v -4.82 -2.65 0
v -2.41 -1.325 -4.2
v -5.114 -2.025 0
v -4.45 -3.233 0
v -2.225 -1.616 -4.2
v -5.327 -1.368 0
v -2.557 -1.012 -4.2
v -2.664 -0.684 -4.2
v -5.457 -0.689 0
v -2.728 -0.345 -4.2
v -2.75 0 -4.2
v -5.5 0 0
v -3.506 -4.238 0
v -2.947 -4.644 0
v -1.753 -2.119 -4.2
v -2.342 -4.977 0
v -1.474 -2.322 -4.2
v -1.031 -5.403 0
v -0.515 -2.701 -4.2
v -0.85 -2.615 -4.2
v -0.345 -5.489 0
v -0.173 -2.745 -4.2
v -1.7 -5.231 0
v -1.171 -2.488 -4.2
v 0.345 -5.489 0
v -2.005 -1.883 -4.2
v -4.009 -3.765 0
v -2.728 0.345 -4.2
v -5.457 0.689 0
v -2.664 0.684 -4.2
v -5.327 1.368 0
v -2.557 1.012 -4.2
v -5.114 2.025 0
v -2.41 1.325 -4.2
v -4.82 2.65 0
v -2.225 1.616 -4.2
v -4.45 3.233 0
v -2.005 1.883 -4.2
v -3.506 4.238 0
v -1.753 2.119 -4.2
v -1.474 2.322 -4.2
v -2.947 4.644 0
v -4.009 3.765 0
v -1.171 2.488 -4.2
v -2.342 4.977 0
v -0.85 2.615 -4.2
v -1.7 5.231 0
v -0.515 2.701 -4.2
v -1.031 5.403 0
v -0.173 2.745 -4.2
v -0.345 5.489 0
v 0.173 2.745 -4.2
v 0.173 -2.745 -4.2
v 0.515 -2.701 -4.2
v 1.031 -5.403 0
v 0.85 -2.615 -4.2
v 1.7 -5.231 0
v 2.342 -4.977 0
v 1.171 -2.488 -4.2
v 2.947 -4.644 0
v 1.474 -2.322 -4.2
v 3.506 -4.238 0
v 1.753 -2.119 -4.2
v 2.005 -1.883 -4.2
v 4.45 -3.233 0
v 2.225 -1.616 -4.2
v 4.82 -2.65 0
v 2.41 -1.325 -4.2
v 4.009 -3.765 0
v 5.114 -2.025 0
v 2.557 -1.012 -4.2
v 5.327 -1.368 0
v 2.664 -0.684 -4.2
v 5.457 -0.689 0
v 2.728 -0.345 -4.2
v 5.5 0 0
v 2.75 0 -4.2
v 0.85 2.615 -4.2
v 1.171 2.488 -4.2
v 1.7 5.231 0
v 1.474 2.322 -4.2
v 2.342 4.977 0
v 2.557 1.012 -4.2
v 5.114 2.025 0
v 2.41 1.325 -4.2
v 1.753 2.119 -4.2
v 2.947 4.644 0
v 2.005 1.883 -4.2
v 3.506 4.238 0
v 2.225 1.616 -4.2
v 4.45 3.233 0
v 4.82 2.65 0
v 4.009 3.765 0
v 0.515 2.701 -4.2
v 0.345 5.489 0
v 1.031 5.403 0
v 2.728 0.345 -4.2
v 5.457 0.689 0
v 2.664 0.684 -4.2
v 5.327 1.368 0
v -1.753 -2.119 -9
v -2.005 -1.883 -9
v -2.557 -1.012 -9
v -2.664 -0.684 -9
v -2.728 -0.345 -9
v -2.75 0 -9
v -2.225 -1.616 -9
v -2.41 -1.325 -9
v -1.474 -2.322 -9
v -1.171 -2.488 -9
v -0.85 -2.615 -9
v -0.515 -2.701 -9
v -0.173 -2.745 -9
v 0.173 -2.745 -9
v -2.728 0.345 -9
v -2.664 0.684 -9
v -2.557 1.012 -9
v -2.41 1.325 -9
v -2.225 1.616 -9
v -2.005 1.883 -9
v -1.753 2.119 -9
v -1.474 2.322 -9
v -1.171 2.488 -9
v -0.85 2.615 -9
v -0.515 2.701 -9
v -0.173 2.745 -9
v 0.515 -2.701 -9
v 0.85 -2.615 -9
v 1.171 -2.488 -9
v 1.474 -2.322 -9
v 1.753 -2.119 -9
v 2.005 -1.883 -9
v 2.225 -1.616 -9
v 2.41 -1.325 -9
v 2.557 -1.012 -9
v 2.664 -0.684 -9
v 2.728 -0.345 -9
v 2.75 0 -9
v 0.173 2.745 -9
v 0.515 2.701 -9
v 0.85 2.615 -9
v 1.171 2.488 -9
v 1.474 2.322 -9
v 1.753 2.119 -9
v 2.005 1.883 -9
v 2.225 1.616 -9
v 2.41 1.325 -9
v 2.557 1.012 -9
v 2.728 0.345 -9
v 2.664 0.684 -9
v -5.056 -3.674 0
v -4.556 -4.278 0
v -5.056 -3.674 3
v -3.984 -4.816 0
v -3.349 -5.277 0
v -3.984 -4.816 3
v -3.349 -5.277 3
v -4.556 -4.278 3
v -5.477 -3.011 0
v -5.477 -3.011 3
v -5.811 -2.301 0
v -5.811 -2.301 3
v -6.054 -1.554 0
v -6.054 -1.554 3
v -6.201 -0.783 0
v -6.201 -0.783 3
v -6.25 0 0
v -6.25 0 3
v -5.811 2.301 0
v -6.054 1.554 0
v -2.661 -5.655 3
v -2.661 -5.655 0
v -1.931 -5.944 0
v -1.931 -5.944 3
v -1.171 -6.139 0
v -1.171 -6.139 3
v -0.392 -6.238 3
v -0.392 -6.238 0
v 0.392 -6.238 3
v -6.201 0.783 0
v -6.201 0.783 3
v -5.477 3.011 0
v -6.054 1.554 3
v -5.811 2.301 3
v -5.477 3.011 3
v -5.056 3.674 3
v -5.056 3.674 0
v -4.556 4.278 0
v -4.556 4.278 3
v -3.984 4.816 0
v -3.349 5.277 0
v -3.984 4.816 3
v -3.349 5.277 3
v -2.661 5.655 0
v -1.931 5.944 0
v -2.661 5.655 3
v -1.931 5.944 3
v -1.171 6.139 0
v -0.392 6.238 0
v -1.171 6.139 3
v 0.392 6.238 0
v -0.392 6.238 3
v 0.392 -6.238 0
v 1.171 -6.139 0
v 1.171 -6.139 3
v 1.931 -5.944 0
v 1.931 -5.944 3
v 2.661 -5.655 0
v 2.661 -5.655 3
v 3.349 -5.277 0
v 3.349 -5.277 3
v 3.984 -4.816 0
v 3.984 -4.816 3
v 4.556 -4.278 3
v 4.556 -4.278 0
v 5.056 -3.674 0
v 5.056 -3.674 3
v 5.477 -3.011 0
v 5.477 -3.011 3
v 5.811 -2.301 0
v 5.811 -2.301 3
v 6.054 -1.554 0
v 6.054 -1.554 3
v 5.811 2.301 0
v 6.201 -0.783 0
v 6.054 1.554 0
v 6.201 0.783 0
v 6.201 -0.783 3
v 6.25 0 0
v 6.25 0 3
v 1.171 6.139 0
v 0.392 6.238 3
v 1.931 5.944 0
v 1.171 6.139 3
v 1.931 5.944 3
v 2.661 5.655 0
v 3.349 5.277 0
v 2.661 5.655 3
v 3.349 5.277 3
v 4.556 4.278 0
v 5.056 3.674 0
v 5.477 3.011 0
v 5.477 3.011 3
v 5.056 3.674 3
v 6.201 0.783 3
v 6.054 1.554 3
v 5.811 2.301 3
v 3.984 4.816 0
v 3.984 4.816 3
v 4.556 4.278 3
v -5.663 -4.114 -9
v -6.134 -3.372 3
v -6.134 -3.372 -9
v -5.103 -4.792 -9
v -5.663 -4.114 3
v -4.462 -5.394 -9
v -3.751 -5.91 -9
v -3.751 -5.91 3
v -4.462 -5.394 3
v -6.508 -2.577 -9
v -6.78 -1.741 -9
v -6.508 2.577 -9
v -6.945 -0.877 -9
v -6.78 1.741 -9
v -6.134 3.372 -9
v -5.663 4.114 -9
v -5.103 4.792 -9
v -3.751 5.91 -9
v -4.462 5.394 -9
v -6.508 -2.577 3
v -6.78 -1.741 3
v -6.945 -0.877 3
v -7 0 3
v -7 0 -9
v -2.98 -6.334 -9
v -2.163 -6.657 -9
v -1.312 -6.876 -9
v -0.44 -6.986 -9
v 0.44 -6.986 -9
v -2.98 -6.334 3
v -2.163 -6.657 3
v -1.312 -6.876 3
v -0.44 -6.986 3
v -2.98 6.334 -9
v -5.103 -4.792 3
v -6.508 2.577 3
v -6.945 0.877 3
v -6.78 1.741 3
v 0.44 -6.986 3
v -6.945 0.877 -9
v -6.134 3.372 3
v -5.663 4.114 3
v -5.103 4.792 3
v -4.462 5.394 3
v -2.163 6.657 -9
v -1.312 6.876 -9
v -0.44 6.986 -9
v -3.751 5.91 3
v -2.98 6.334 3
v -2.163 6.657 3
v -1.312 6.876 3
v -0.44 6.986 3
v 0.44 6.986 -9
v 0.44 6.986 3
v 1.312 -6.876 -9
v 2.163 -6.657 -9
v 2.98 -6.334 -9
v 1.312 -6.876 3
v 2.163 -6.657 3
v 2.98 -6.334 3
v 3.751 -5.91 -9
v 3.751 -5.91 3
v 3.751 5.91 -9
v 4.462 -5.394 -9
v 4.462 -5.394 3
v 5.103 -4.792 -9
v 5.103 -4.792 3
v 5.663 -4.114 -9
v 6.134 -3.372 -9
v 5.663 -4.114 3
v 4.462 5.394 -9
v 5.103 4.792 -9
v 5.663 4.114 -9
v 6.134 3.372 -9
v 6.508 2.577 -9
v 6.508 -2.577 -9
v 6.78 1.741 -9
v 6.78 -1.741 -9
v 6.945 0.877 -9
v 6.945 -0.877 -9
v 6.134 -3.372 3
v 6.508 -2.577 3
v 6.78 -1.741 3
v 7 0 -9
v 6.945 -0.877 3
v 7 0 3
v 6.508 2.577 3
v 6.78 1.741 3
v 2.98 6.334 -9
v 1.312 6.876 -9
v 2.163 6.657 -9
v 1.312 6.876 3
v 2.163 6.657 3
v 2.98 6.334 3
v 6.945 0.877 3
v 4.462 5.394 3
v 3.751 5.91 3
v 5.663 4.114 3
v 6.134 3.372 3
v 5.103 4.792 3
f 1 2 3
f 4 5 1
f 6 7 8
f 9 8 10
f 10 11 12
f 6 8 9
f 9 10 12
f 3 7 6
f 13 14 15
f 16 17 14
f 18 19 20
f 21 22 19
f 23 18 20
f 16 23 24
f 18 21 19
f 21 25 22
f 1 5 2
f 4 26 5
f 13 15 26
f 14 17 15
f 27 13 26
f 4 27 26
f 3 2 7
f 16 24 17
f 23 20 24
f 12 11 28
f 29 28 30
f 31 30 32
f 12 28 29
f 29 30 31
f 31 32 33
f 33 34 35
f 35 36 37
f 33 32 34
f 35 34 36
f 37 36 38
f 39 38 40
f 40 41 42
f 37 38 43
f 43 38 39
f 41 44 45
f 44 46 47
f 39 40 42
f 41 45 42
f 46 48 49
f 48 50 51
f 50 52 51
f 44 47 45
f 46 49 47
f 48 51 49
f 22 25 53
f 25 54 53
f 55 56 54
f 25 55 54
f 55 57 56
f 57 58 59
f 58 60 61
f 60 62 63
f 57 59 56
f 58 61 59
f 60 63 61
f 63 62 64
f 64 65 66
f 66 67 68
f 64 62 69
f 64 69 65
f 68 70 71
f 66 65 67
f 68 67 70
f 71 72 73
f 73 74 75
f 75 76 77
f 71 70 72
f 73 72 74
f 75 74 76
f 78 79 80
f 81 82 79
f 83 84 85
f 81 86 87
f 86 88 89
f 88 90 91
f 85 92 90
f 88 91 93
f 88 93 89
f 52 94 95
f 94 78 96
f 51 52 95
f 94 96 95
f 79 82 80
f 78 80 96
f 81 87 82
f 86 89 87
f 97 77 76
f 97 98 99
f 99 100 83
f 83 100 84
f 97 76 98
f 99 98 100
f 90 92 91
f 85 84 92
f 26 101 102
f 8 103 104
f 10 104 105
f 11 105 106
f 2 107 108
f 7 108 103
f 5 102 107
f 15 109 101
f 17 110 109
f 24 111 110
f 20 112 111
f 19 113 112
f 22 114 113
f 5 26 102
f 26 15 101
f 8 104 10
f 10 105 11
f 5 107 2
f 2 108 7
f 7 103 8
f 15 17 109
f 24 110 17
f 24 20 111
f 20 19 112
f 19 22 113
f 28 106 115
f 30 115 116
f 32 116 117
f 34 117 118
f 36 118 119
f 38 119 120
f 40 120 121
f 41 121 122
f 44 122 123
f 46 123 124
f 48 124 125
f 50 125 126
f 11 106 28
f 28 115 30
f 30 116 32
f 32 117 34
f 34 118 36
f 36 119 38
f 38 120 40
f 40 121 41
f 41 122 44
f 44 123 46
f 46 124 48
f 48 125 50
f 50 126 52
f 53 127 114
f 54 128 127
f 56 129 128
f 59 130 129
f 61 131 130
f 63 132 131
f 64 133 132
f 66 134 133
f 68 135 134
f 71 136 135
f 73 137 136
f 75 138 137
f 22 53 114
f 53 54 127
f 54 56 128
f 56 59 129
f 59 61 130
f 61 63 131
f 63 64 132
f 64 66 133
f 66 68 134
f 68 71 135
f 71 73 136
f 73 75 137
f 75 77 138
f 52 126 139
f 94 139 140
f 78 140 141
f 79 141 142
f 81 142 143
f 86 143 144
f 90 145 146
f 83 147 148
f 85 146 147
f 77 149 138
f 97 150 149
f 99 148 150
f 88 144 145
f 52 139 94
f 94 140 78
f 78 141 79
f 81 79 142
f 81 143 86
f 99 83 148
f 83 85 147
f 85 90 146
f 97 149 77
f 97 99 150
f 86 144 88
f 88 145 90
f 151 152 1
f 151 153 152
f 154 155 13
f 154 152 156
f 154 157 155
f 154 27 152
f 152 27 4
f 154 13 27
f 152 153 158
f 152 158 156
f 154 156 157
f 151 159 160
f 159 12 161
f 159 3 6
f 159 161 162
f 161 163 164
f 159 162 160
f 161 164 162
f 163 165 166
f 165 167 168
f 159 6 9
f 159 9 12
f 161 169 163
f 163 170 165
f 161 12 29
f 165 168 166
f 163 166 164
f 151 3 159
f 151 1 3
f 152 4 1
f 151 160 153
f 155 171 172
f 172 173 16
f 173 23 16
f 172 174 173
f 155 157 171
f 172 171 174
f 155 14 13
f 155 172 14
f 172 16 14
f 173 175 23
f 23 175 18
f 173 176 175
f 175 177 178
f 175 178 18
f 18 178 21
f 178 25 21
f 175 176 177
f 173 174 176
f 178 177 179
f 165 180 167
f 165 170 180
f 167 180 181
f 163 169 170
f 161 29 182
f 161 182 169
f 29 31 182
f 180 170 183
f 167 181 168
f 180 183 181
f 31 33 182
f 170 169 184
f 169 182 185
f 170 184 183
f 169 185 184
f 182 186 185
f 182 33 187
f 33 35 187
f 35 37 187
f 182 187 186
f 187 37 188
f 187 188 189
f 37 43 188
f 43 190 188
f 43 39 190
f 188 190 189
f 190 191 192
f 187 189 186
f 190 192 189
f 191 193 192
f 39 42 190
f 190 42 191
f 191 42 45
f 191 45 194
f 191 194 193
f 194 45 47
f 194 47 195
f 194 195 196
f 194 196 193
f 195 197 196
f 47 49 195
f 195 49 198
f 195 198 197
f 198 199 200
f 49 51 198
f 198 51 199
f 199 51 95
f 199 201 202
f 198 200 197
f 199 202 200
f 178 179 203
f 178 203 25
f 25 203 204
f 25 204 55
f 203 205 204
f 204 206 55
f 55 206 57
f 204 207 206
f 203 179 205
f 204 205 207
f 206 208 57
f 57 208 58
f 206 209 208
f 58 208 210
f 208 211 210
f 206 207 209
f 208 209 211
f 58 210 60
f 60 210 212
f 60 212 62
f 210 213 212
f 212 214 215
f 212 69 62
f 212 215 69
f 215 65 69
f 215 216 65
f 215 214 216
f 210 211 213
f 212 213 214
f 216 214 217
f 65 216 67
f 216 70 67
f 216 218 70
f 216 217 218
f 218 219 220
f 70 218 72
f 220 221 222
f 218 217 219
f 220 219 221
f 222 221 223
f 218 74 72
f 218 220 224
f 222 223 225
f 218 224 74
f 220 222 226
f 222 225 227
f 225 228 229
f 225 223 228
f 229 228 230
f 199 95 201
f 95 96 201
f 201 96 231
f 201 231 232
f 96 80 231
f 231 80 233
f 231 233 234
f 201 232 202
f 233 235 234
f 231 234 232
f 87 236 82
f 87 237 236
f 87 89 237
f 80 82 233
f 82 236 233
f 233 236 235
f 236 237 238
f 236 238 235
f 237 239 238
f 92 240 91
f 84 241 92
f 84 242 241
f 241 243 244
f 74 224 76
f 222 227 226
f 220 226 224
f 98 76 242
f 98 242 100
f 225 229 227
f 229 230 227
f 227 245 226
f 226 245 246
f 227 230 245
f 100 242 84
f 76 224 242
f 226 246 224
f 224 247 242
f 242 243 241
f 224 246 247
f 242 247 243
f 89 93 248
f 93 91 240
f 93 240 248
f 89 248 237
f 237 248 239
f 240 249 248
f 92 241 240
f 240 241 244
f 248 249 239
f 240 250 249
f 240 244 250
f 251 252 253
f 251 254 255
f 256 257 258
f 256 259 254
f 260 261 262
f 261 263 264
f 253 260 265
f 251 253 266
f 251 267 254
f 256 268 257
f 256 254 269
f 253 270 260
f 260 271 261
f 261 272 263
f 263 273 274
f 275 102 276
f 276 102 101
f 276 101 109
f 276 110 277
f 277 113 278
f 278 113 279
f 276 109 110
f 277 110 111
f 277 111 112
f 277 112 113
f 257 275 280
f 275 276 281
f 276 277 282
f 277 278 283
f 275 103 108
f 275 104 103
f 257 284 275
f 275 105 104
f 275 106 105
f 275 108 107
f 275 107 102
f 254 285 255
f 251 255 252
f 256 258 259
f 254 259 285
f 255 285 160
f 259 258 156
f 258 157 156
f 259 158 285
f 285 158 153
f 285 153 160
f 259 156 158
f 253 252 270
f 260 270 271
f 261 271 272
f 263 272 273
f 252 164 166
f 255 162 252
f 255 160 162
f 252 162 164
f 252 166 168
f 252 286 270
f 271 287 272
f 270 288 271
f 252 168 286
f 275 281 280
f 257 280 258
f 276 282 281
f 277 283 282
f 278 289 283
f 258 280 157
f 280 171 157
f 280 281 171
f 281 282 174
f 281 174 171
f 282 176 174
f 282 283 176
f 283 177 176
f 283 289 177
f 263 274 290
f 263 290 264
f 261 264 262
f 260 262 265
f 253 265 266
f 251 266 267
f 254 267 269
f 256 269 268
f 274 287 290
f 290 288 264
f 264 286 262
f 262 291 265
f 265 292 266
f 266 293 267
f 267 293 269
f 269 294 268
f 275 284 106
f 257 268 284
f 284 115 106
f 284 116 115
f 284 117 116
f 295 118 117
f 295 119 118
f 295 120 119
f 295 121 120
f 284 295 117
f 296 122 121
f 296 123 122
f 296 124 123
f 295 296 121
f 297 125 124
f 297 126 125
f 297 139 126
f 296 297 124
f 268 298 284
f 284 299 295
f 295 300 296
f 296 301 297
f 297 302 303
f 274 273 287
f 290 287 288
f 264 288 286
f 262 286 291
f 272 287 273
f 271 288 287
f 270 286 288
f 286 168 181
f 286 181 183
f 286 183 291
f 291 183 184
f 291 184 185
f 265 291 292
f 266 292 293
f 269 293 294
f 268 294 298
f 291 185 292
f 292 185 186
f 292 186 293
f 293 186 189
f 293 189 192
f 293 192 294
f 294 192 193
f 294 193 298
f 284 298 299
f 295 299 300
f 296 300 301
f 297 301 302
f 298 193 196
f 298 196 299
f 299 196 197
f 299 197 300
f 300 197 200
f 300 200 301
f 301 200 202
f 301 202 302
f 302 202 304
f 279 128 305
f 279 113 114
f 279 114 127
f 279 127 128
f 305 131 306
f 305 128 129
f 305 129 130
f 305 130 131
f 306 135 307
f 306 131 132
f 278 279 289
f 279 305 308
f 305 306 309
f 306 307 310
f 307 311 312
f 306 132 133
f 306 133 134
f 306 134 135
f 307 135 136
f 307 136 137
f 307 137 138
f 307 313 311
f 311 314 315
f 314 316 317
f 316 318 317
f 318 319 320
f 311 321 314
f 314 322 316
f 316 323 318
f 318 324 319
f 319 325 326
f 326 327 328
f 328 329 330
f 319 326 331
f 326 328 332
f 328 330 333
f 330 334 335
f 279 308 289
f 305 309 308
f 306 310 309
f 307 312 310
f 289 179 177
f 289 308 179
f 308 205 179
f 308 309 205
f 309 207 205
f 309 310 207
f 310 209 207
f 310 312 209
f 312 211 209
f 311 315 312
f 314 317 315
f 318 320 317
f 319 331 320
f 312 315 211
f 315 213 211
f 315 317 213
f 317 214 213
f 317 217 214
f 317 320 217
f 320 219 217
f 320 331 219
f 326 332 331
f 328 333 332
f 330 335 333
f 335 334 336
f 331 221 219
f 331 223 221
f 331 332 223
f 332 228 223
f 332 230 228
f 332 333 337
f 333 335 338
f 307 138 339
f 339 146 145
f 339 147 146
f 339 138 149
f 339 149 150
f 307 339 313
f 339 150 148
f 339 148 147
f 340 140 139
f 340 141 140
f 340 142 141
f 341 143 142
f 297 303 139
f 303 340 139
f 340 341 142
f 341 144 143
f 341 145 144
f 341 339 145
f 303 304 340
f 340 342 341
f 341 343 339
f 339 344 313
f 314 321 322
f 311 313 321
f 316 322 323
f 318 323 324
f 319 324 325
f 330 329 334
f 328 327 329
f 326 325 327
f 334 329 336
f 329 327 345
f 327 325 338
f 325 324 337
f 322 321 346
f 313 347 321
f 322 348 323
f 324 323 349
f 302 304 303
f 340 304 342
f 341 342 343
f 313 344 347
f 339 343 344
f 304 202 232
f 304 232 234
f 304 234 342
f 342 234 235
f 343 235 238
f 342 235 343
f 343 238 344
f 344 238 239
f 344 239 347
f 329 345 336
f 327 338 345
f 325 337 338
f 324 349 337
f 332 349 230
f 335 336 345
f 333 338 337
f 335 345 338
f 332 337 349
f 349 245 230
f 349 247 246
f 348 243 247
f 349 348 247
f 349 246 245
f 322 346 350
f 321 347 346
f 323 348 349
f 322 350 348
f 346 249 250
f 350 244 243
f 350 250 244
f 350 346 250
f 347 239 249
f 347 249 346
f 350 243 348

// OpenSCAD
$fn = 50;

difference() {
	union() {
		translate(v = [0, 0, -9.0]) {
			cylinder(h = 12, r = 7.0);
		}
	}
	union() {
		translate(v = [0, 0, 0]) {
			rotate(a = [0, 0, 0]) {
				difference() {
					union() {
						translate(v = [0, 0, -12.0]) {
							cylinder(h = 12, r = 2.25);
						}
						translate(v = [0, 0, -4.2]) {
							cylinder(h = 4.2, r1 = 2.75, r2 = 5.5);
						}
						translate(v = [0, 0, -12.0]) {
							cylinder(h = 12, r = 2.75);
						}
						translate(v = [0, 0, -12.0]) {
							cylinder(h = 12, r = 2.25);
						}
					}
					union();
				}
			}
		}
		#cylinder(h = 3, r = 6.25);
	}
}
